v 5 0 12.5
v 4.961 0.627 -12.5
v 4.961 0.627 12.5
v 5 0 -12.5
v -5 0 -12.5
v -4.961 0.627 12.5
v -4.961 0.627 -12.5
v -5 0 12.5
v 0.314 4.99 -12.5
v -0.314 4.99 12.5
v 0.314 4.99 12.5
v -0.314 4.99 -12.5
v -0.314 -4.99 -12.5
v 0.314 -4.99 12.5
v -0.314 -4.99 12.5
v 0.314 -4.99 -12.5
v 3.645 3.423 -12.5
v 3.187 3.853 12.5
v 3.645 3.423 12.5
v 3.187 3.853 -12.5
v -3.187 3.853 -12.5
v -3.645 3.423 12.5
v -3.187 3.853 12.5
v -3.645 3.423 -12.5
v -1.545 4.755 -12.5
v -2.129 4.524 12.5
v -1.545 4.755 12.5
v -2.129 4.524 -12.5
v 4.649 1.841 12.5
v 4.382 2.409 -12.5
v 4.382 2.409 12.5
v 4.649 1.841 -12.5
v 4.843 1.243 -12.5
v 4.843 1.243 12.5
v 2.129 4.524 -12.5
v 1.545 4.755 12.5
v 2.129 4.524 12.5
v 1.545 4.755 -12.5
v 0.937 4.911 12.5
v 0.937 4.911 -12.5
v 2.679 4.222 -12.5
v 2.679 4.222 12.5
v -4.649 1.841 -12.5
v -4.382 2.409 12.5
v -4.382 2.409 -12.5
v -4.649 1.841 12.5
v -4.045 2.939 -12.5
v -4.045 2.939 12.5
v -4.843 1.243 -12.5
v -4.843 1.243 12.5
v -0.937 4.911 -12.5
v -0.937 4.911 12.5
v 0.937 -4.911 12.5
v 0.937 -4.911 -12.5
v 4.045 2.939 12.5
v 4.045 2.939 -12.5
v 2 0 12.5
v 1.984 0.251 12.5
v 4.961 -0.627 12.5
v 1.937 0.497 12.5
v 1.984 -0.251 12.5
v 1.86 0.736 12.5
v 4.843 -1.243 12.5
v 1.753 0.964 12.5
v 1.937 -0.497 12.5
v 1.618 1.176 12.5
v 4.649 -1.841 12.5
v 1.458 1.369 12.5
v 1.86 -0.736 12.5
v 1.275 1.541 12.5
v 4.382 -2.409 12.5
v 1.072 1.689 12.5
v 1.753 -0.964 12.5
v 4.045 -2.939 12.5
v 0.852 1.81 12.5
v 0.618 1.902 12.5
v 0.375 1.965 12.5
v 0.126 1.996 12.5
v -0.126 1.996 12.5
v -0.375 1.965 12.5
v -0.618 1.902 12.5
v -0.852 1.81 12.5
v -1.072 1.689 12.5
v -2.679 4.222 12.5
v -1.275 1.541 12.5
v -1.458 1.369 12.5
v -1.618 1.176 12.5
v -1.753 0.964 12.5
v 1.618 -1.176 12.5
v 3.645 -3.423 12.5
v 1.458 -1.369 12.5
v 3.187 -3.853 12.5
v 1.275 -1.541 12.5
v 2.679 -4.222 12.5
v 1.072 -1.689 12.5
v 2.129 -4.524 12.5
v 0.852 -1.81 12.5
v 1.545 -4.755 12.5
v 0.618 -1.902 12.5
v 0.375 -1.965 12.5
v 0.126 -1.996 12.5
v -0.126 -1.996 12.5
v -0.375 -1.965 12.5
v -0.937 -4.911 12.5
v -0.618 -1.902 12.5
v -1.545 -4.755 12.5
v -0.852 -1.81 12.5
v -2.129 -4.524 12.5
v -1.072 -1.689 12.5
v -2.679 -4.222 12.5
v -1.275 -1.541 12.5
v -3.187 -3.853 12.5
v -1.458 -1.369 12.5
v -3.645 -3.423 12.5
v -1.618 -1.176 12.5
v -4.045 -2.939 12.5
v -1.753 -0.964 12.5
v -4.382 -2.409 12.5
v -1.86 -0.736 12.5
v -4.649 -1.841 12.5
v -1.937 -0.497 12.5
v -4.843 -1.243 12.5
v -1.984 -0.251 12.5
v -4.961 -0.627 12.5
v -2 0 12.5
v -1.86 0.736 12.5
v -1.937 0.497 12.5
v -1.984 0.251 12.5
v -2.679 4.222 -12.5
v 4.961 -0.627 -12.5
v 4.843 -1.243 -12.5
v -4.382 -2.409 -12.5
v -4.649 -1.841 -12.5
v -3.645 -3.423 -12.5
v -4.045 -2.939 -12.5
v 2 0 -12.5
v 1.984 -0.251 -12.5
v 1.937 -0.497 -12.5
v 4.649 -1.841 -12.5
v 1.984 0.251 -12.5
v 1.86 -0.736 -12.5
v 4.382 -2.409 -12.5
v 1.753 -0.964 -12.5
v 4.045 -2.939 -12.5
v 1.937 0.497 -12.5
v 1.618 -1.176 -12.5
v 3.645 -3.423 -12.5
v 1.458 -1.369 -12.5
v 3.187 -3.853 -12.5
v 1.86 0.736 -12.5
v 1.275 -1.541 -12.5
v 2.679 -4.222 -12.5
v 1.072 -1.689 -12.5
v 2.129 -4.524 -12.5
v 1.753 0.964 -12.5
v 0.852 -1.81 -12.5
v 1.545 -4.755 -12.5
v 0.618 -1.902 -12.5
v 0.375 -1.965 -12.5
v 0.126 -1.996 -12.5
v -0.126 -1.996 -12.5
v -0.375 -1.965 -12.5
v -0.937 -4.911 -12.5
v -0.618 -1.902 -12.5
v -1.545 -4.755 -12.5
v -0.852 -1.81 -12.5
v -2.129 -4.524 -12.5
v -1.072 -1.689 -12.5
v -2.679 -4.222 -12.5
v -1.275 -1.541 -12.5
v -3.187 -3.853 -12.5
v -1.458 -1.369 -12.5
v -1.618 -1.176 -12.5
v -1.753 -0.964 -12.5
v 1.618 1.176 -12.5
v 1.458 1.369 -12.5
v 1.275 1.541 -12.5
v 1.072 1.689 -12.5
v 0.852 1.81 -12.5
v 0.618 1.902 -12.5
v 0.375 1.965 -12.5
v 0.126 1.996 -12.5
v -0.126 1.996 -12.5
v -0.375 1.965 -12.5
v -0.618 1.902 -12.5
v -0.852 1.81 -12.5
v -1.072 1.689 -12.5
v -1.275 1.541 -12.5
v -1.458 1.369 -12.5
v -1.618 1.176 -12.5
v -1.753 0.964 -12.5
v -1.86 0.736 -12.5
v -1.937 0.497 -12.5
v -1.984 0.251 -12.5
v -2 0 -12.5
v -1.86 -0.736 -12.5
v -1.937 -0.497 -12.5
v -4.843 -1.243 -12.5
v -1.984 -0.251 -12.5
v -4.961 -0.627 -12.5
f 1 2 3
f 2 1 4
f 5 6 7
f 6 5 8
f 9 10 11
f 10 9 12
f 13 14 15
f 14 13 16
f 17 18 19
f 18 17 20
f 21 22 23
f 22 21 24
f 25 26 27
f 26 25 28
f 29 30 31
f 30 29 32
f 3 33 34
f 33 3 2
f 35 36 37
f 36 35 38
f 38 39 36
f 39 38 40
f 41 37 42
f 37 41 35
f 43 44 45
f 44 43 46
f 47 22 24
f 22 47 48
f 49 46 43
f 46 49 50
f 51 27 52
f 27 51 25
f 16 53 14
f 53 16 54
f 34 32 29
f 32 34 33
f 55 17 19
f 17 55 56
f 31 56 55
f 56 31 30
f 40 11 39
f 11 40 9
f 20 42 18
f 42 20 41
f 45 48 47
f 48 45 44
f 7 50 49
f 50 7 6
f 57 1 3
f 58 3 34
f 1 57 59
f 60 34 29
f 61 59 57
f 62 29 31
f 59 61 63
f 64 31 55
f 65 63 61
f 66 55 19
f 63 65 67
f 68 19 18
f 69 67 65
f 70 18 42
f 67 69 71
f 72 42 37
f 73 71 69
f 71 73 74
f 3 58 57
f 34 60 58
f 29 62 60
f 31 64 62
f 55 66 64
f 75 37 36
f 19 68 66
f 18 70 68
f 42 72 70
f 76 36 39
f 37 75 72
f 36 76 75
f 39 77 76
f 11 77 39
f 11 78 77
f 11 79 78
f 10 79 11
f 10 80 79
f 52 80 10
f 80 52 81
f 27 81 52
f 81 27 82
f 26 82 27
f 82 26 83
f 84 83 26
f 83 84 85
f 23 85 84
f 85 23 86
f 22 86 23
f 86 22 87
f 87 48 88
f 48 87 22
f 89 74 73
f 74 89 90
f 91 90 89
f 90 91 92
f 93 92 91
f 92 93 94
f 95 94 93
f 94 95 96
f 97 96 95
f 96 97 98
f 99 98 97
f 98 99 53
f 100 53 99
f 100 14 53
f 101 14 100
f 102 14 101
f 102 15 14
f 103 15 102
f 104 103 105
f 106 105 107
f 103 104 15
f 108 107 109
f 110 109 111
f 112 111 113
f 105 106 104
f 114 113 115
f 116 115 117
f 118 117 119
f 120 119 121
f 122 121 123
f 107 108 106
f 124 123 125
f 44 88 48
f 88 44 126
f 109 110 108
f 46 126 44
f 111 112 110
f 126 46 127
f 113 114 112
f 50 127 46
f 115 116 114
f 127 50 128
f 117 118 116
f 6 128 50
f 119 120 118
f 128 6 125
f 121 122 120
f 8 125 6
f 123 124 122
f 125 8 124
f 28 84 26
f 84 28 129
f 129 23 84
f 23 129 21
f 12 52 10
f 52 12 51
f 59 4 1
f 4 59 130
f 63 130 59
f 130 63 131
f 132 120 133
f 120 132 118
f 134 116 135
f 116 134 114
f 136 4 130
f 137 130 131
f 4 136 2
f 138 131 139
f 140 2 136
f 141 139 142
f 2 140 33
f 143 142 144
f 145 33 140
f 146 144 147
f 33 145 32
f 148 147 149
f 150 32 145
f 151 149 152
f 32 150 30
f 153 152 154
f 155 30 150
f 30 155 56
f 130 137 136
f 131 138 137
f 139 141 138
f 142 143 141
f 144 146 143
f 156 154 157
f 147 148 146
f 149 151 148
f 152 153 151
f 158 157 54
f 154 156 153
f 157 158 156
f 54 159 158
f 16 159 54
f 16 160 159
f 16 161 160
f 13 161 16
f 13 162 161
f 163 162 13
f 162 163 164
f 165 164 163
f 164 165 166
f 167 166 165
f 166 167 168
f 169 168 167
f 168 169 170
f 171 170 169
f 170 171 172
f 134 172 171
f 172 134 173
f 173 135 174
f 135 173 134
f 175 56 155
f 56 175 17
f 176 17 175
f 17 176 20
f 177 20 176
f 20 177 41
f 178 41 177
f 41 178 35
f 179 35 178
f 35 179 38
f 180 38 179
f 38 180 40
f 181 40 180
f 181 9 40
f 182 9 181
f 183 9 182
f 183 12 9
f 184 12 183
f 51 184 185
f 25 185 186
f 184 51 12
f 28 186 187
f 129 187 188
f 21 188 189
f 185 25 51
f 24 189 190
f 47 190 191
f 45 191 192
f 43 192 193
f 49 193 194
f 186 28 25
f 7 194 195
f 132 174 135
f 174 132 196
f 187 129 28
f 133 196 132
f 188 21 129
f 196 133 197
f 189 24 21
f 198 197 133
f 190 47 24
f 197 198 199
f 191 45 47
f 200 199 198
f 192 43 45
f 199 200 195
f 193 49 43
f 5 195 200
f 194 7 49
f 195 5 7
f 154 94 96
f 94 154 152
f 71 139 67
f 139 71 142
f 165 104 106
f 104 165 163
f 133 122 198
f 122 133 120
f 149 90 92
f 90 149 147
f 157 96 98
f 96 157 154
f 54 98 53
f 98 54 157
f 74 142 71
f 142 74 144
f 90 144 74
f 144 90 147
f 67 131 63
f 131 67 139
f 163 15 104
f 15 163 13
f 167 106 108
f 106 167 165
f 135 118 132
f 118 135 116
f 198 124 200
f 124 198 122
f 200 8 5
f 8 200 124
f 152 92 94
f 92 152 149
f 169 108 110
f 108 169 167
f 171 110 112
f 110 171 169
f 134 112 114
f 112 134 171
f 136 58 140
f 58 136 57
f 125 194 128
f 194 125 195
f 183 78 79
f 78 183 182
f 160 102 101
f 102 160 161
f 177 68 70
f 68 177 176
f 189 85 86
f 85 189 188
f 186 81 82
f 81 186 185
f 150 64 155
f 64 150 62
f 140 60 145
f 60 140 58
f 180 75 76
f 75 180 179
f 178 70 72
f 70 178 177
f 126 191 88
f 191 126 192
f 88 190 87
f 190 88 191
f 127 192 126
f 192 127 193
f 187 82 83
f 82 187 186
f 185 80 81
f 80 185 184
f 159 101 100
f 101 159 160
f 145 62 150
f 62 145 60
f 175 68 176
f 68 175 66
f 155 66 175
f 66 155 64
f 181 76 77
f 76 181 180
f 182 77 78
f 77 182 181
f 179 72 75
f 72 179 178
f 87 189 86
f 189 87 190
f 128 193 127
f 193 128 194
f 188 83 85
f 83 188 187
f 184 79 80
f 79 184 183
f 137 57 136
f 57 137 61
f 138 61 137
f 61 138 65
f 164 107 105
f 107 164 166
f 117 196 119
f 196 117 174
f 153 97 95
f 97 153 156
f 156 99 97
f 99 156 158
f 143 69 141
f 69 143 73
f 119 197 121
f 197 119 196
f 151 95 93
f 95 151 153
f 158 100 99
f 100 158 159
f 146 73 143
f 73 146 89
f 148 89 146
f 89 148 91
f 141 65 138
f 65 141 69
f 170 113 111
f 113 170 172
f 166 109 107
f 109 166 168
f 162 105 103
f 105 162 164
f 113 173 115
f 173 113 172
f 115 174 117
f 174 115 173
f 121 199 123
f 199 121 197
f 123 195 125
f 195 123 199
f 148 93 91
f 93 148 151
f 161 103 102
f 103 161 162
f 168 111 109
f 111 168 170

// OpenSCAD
$fn = 50;


difference() {
	union() {
		translate(v = [0, 0, -12.5000000000]) {
			cylinder(h = 25, r = 5.0000000000);
		}
	}
	union() {
		translate(v = [0, 0, -100.0000000000]) {
			cylinder(h = 200, r = 2);
		}
	}
}
